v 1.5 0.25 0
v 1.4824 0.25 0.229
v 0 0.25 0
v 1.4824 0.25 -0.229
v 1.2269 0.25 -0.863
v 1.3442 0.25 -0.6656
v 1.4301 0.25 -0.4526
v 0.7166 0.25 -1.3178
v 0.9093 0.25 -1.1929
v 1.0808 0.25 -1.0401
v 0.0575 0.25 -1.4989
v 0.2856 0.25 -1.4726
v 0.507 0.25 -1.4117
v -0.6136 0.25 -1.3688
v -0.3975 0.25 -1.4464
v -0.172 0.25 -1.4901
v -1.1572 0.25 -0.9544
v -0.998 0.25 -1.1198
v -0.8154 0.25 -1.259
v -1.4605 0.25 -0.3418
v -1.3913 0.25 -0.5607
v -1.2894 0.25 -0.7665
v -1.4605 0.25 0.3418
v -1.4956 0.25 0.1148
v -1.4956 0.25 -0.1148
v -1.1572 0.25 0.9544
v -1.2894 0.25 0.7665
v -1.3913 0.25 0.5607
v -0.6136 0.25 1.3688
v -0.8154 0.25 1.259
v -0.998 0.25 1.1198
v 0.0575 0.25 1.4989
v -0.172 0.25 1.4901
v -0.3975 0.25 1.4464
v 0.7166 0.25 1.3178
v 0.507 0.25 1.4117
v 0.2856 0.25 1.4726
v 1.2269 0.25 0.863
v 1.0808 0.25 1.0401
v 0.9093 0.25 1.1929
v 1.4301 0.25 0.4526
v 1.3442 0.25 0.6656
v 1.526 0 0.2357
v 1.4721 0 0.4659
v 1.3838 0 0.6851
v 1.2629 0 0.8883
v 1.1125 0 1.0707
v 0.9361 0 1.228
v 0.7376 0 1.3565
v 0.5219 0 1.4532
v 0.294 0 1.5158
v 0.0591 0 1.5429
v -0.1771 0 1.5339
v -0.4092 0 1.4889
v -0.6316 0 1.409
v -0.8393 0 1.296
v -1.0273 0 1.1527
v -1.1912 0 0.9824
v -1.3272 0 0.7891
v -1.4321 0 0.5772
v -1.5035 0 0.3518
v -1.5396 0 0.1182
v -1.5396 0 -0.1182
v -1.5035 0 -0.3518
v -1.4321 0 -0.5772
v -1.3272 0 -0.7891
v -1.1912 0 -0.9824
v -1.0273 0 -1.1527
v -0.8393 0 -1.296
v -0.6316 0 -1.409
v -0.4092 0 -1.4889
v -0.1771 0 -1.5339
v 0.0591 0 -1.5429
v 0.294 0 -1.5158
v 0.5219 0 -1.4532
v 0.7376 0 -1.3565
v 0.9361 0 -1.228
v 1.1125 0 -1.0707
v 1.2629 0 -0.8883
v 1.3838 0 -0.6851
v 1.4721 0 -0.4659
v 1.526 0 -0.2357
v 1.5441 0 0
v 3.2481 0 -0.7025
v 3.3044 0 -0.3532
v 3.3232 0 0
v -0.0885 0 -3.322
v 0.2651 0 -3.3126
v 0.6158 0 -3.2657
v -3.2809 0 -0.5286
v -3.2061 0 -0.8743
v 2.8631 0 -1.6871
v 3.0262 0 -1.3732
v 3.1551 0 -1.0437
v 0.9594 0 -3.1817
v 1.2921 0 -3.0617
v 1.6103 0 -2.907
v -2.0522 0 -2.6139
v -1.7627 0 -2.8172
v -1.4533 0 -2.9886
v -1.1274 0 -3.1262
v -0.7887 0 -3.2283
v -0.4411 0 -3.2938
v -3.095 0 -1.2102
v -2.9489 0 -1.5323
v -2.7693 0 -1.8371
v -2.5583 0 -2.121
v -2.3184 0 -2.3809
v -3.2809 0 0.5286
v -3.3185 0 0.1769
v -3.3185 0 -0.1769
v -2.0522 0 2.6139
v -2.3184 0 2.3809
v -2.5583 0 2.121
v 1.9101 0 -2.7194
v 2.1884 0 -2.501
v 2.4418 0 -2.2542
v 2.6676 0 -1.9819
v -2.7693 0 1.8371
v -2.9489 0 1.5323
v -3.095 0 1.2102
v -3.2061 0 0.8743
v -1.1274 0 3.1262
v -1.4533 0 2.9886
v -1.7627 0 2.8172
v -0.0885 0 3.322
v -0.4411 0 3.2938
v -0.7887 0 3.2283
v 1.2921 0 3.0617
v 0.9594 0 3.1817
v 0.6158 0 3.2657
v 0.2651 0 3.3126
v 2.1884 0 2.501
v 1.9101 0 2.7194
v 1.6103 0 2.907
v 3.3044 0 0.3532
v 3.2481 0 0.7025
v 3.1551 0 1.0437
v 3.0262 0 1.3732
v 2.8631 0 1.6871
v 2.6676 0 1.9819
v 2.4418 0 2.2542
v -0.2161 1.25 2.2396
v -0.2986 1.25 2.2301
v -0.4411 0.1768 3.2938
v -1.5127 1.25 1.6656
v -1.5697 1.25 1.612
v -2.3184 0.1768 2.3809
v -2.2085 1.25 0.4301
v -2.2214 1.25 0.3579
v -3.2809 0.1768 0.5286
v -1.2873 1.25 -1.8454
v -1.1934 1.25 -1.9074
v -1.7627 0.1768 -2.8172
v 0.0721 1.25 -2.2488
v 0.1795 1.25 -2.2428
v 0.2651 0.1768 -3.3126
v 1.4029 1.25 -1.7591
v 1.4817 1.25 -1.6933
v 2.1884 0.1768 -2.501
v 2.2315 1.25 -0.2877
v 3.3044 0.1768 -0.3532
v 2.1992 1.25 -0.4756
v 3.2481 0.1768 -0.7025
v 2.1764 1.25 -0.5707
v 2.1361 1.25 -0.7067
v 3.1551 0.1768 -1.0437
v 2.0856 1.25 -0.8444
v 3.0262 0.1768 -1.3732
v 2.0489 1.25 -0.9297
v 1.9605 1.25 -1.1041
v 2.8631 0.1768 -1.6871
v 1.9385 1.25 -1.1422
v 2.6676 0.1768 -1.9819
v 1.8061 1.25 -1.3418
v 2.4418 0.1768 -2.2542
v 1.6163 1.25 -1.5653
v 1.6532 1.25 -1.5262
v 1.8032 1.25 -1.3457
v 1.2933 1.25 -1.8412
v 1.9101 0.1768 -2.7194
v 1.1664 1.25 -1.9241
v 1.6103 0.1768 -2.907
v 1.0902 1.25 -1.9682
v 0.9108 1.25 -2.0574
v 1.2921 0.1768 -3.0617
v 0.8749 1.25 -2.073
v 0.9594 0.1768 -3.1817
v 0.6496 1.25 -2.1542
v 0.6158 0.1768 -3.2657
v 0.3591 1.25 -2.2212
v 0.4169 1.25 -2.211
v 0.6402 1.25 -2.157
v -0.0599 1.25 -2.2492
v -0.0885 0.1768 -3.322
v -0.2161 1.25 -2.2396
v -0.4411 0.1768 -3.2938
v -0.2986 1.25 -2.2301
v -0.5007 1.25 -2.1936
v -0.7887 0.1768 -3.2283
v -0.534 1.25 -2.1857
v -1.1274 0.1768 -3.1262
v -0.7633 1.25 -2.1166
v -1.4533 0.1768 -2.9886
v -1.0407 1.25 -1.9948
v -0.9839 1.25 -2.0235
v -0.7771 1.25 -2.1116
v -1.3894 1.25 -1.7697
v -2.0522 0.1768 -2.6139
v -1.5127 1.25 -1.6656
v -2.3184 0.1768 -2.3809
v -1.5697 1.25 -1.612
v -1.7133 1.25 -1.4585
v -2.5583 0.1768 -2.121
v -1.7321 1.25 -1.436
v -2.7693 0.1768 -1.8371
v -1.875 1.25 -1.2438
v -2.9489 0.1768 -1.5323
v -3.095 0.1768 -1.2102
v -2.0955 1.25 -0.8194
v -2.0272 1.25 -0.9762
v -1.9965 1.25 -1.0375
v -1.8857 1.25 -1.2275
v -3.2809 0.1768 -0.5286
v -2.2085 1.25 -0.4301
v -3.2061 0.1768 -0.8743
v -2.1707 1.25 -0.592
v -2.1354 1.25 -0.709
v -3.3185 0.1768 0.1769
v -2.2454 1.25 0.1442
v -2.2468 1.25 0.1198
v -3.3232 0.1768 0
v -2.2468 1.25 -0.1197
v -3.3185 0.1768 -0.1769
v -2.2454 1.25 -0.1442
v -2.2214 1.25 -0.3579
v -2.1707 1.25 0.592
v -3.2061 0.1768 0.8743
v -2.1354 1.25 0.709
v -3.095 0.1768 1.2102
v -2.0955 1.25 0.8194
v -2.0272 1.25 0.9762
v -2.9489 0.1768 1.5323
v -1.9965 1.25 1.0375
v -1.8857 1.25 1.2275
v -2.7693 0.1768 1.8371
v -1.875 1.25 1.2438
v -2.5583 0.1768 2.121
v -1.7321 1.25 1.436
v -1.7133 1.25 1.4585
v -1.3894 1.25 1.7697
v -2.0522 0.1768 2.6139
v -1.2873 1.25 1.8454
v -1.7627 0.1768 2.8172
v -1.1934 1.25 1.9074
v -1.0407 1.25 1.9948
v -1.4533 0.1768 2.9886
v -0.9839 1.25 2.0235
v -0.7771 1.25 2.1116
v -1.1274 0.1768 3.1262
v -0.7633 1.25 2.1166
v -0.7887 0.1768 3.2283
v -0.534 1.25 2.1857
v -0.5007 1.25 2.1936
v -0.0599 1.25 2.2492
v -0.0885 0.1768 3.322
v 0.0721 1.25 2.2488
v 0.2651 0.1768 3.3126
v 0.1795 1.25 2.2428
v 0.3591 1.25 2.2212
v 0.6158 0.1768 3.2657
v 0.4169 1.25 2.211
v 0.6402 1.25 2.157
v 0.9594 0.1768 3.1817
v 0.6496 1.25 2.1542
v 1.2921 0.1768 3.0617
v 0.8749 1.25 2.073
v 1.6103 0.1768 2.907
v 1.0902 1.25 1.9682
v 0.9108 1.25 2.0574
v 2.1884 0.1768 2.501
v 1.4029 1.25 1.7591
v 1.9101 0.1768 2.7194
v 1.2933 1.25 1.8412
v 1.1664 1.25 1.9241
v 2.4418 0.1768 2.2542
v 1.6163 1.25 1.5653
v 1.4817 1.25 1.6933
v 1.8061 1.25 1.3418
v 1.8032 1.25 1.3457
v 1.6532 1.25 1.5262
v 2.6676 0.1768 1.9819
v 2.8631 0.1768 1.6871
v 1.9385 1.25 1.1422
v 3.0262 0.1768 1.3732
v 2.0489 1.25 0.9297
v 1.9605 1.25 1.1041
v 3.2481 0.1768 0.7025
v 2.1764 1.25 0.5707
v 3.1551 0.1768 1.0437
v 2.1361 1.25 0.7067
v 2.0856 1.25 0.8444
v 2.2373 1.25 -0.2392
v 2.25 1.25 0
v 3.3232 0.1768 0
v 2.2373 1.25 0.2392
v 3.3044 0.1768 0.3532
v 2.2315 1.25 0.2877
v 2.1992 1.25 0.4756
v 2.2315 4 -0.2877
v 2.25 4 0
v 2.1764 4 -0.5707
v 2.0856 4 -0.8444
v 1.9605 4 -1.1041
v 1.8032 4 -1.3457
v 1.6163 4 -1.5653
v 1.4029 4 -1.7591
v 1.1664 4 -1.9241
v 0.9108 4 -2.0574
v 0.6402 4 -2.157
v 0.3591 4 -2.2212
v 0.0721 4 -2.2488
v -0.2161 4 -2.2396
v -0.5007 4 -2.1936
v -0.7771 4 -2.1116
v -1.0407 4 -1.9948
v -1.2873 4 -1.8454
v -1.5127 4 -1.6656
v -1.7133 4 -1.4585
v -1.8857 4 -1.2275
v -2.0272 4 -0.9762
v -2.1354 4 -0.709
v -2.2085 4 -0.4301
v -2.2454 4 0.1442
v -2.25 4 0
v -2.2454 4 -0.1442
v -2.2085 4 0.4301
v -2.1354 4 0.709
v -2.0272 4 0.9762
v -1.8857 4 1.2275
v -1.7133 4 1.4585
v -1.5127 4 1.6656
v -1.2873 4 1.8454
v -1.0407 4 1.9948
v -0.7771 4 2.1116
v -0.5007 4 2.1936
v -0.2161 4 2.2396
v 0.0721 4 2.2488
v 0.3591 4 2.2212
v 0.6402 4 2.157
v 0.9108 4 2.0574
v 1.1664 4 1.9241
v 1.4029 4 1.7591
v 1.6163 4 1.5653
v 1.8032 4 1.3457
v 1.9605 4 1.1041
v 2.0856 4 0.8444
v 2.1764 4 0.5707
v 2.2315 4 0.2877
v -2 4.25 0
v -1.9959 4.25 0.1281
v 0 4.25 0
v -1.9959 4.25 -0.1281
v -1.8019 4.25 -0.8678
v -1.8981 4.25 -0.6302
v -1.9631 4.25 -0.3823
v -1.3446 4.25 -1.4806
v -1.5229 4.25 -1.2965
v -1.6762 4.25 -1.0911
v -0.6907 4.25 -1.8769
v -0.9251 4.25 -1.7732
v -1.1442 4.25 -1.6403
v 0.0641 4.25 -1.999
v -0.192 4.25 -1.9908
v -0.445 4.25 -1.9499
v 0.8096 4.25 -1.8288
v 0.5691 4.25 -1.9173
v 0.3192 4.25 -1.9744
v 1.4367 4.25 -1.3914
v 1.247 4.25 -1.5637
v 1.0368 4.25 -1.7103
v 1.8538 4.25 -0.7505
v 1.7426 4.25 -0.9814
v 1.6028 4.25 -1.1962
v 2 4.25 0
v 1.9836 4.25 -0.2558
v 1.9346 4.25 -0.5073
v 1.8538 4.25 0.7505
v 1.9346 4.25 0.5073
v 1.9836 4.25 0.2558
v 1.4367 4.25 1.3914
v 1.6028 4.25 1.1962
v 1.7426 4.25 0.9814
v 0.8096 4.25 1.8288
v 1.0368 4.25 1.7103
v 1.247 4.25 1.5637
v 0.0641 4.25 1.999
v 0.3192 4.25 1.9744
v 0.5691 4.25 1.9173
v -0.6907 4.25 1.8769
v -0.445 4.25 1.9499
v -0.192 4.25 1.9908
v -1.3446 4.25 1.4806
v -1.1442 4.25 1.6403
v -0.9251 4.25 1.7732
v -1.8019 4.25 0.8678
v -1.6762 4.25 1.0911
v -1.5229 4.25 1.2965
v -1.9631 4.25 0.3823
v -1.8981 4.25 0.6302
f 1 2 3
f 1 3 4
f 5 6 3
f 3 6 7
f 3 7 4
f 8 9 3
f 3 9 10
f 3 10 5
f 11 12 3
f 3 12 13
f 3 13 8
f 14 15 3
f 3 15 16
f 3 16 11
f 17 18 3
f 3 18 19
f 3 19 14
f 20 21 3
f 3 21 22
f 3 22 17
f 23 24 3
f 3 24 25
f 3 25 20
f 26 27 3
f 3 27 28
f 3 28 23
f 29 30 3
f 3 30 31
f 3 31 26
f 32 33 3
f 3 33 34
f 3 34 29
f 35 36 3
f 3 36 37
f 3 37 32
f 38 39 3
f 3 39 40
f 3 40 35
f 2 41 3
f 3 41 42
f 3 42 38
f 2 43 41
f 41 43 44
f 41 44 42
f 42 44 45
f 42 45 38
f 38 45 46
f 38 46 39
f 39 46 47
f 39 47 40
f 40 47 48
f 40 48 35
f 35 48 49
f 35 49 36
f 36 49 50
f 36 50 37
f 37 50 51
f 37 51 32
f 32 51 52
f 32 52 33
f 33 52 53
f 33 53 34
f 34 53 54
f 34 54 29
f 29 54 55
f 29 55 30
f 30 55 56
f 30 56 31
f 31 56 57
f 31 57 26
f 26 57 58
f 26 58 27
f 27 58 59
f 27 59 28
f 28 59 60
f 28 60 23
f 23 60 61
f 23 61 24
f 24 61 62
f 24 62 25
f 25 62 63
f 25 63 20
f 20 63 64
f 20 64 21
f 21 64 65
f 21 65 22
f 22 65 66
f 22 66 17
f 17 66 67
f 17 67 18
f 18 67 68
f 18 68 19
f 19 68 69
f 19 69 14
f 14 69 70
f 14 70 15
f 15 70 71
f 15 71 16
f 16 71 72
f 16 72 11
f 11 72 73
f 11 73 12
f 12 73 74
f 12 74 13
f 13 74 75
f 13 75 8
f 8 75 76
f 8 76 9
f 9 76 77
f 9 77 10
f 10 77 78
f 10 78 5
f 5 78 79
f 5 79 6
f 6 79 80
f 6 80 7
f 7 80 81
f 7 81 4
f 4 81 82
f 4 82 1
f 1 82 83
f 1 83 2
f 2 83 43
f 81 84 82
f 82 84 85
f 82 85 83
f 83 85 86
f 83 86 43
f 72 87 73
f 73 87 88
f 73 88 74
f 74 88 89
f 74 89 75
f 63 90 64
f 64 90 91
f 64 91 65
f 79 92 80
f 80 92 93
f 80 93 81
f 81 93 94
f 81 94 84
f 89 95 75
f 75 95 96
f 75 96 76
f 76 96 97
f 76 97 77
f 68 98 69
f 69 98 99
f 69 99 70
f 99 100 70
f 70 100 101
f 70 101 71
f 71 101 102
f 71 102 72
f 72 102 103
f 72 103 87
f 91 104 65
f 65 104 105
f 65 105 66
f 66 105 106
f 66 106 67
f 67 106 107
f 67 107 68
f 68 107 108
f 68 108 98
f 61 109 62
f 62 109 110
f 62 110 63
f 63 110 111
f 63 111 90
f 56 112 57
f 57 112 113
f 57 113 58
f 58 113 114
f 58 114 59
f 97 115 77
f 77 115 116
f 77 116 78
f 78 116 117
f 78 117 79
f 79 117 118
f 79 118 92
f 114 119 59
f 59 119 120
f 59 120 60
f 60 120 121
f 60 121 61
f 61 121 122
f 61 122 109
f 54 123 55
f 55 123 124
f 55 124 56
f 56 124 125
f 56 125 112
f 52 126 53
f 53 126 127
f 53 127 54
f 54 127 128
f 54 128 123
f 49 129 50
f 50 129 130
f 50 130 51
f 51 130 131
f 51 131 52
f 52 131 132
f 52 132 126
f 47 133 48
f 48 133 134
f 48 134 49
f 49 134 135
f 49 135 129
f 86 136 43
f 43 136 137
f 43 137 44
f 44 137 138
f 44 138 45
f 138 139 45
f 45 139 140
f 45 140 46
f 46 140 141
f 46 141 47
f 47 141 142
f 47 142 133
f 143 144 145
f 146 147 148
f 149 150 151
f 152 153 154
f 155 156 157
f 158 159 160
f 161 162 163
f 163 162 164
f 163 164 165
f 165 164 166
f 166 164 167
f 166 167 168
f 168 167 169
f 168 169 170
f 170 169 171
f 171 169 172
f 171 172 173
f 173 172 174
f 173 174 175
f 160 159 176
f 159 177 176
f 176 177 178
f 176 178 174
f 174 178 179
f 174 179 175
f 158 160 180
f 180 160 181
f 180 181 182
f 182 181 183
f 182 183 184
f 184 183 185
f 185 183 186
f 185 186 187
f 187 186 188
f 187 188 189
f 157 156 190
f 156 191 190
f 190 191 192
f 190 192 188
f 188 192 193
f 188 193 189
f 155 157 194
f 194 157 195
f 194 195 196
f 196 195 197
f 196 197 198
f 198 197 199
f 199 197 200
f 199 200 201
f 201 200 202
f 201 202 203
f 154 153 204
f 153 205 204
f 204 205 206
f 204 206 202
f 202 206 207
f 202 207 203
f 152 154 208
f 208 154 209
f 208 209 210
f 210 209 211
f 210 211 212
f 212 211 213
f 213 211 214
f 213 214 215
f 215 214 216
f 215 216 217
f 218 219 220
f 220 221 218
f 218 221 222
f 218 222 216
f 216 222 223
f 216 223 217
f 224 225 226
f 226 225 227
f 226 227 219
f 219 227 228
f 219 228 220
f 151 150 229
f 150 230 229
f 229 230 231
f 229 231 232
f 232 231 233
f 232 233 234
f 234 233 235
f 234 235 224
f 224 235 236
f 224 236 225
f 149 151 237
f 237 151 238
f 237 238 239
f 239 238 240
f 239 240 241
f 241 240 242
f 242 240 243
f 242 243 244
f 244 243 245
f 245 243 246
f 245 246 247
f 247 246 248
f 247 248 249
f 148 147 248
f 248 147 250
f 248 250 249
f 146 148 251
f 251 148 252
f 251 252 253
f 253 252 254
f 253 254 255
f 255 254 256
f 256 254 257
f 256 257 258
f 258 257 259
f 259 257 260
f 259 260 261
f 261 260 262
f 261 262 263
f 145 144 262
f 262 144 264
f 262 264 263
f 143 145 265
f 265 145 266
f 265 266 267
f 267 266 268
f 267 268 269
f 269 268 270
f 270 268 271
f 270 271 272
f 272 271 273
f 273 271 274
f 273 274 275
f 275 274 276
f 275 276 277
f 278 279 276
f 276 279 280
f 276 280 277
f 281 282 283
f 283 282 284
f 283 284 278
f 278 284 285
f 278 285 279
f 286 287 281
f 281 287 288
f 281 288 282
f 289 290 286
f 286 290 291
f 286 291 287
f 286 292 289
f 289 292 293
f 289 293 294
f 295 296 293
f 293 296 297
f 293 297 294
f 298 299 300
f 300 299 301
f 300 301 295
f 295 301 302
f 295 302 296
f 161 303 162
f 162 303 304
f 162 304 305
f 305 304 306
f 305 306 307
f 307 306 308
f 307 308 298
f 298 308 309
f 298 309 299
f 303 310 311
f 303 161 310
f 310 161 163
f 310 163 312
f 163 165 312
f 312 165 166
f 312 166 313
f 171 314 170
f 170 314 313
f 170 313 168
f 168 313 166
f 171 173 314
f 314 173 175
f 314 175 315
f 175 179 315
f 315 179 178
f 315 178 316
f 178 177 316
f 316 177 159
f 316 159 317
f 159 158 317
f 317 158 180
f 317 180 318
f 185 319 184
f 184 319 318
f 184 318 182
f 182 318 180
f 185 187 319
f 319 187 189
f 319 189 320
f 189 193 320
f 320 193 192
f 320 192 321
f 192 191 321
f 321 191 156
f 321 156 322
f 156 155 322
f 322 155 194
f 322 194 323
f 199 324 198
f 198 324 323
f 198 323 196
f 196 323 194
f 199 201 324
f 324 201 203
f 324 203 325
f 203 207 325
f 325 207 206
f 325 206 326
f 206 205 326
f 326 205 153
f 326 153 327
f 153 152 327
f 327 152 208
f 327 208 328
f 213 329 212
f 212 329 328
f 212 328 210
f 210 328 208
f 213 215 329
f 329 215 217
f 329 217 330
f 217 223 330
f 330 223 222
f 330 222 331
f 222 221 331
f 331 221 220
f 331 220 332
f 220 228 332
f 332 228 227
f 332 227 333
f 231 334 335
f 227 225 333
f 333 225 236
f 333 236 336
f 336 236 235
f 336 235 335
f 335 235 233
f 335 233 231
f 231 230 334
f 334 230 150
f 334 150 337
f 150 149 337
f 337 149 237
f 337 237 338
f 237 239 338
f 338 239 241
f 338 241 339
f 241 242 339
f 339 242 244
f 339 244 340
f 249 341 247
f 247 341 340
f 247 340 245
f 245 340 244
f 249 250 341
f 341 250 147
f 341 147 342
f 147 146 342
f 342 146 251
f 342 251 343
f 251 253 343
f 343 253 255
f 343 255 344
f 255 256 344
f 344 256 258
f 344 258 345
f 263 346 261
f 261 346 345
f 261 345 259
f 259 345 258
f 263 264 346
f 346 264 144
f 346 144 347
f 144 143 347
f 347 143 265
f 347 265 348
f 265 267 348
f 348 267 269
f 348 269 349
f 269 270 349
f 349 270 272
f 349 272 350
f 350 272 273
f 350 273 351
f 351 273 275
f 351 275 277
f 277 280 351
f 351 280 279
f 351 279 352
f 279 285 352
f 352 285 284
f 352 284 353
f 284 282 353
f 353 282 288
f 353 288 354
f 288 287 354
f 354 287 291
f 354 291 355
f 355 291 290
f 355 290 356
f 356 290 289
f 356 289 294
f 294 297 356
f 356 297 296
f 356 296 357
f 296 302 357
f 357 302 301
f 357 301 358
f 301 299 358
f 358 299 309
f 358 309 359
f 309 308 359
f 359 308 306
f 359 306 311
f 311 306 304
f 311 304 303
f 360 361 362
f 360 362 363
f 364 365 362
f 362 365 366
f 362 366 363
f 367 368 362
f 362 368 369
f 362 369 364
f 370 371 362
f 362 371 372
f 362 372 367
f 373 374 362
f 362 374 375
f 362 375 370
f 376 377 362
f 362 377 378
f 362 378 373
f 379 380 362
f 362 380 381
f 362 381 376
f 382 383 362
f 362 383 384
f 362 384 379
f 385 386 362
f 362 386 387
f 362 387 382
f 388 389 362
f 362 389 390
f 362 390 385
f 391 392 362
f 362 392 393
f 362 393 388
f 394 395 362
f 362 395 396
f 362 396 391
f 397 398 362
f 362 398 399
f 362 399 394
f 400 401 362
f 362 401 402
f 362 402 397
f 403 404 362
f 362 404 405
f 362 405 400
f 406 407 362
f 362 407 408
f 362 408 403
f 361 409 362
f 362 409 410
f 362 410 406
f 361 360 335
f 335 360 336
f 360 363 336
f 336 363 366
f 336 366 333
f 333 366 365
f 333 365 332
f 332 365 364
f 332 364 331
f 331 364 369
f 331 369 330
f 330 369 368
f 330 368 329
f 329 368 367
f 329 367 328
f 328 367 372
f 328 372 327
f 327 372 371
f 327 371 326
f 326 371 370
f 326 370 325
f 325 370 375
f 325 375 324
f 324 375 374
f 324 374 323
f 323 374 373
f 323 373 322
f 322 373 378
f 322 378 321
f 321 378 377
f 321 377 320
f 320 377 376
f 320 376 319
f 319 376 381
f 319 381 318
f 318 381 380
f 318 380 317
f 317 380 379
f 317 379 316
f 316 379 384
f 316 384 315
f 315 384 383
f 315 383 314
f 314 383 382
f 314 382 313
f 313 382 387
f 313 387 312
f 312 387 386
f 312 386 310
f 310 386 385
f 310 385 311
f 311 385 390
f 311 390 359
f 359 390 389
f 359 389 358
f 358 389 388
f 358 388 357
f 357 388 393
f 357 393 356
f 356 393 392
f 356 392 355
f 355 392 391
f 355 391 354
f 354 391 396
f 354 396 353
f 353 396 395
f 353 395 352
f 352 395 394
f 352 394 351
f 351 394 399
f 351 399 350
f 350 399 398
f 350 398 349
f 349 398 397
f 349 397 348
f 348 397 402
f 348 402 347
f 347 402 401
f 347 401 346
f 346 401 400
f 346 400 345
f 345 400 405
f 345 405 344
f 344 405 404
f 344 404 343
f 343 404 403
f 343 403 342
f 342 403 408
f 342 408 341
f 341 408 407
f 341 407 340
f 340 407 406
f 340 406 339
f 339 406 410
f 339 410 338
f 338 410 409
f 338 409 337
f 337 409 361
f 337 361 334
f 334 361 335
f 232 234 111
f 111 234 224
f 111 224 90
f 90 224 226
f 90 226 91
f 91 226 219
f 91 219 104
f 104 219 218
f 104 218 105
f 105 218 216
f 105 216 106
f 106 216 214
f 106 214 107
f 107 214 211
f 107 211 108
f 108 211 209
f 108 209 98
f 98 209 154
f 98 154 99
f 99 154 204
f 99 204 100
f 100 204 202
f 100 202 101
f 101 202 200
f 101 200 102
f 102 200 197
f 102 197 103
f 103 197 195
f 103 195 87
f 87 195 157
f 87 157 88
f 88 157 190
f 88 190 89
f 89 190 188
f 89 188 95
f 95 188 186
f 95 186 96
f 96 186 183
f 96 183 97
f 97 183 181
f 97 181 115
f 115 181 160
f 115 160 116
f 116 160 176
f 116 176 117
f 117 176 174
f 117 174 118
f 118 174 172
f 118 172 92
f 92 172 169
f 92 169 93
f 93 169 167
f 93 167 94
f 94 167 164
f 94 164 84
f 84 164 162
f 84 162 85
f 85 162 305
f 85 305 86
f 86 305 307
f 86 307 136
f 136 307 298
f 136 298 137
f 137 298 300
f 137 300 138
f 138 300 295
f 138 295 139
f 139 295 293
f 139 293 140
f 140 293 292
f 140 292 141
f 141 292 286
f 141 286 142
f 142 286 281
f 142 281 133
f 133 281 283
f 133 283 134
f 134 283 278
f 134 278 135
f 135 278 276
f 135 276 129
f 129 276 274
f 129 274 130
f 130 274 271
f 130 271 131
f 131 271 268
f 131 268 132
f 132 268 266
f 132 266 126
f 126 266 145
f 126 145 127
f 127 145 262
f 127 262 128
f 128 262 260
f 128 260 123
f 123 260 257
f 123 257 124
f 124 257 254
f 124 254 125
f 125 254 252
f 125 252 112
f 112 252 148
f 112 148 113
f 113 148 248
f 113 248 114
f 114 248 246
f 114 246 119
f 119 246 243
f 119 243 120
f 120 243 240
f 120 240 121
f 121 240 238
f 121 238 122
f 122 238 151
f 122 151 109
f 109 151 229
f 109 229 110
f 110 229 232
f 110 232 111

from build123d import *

# Parameters (mm, degrees)
CHAMFER1_SIZE  = 0.25
CHAMFER2_SIZE  = 0.25
CHAMFER2_SIZE2 = 0.176776695


with BuildPart() as part:
    # Sketch1 → Revolve1 (revolve)
    with BuildSketch(Plane.XY):
        Polygon((0, 0.25), (1.5, 0.25), (1.544081745, 0), (3.5, 0), (2.25, 1.25), (2.25, 4.25), (0, 4.25), align=None)
    revolve(axis=Axis((0, -277.798061763, 0), (0, 1, 0)))

    # Chamfer1
    chamfer1_edges = [part.edges().sort_by_distance(p)[0] for p in [
        (-2.25, 4.25, 0),
    ]]
    chamfer(chamfer1_edges, length=CHAMFER1_SIZE)

    # Chamfer2
    chamfer2_edges = [part.edges().sort_by_distance(p)[0] for p in [
        (-3.5, 0, 0),
    ]]
    chamfer2_side = [part.faces().sort_by_distance(p)[0] for p in [
        (-2.875, 0.625, 0),
    ]]
    chamfer(chamfer2_edges, length=CHAMFER2_SIZE, length2=CHAMFER2_SIZE2, reference=chamfer2_side[0])


solid = part.part
